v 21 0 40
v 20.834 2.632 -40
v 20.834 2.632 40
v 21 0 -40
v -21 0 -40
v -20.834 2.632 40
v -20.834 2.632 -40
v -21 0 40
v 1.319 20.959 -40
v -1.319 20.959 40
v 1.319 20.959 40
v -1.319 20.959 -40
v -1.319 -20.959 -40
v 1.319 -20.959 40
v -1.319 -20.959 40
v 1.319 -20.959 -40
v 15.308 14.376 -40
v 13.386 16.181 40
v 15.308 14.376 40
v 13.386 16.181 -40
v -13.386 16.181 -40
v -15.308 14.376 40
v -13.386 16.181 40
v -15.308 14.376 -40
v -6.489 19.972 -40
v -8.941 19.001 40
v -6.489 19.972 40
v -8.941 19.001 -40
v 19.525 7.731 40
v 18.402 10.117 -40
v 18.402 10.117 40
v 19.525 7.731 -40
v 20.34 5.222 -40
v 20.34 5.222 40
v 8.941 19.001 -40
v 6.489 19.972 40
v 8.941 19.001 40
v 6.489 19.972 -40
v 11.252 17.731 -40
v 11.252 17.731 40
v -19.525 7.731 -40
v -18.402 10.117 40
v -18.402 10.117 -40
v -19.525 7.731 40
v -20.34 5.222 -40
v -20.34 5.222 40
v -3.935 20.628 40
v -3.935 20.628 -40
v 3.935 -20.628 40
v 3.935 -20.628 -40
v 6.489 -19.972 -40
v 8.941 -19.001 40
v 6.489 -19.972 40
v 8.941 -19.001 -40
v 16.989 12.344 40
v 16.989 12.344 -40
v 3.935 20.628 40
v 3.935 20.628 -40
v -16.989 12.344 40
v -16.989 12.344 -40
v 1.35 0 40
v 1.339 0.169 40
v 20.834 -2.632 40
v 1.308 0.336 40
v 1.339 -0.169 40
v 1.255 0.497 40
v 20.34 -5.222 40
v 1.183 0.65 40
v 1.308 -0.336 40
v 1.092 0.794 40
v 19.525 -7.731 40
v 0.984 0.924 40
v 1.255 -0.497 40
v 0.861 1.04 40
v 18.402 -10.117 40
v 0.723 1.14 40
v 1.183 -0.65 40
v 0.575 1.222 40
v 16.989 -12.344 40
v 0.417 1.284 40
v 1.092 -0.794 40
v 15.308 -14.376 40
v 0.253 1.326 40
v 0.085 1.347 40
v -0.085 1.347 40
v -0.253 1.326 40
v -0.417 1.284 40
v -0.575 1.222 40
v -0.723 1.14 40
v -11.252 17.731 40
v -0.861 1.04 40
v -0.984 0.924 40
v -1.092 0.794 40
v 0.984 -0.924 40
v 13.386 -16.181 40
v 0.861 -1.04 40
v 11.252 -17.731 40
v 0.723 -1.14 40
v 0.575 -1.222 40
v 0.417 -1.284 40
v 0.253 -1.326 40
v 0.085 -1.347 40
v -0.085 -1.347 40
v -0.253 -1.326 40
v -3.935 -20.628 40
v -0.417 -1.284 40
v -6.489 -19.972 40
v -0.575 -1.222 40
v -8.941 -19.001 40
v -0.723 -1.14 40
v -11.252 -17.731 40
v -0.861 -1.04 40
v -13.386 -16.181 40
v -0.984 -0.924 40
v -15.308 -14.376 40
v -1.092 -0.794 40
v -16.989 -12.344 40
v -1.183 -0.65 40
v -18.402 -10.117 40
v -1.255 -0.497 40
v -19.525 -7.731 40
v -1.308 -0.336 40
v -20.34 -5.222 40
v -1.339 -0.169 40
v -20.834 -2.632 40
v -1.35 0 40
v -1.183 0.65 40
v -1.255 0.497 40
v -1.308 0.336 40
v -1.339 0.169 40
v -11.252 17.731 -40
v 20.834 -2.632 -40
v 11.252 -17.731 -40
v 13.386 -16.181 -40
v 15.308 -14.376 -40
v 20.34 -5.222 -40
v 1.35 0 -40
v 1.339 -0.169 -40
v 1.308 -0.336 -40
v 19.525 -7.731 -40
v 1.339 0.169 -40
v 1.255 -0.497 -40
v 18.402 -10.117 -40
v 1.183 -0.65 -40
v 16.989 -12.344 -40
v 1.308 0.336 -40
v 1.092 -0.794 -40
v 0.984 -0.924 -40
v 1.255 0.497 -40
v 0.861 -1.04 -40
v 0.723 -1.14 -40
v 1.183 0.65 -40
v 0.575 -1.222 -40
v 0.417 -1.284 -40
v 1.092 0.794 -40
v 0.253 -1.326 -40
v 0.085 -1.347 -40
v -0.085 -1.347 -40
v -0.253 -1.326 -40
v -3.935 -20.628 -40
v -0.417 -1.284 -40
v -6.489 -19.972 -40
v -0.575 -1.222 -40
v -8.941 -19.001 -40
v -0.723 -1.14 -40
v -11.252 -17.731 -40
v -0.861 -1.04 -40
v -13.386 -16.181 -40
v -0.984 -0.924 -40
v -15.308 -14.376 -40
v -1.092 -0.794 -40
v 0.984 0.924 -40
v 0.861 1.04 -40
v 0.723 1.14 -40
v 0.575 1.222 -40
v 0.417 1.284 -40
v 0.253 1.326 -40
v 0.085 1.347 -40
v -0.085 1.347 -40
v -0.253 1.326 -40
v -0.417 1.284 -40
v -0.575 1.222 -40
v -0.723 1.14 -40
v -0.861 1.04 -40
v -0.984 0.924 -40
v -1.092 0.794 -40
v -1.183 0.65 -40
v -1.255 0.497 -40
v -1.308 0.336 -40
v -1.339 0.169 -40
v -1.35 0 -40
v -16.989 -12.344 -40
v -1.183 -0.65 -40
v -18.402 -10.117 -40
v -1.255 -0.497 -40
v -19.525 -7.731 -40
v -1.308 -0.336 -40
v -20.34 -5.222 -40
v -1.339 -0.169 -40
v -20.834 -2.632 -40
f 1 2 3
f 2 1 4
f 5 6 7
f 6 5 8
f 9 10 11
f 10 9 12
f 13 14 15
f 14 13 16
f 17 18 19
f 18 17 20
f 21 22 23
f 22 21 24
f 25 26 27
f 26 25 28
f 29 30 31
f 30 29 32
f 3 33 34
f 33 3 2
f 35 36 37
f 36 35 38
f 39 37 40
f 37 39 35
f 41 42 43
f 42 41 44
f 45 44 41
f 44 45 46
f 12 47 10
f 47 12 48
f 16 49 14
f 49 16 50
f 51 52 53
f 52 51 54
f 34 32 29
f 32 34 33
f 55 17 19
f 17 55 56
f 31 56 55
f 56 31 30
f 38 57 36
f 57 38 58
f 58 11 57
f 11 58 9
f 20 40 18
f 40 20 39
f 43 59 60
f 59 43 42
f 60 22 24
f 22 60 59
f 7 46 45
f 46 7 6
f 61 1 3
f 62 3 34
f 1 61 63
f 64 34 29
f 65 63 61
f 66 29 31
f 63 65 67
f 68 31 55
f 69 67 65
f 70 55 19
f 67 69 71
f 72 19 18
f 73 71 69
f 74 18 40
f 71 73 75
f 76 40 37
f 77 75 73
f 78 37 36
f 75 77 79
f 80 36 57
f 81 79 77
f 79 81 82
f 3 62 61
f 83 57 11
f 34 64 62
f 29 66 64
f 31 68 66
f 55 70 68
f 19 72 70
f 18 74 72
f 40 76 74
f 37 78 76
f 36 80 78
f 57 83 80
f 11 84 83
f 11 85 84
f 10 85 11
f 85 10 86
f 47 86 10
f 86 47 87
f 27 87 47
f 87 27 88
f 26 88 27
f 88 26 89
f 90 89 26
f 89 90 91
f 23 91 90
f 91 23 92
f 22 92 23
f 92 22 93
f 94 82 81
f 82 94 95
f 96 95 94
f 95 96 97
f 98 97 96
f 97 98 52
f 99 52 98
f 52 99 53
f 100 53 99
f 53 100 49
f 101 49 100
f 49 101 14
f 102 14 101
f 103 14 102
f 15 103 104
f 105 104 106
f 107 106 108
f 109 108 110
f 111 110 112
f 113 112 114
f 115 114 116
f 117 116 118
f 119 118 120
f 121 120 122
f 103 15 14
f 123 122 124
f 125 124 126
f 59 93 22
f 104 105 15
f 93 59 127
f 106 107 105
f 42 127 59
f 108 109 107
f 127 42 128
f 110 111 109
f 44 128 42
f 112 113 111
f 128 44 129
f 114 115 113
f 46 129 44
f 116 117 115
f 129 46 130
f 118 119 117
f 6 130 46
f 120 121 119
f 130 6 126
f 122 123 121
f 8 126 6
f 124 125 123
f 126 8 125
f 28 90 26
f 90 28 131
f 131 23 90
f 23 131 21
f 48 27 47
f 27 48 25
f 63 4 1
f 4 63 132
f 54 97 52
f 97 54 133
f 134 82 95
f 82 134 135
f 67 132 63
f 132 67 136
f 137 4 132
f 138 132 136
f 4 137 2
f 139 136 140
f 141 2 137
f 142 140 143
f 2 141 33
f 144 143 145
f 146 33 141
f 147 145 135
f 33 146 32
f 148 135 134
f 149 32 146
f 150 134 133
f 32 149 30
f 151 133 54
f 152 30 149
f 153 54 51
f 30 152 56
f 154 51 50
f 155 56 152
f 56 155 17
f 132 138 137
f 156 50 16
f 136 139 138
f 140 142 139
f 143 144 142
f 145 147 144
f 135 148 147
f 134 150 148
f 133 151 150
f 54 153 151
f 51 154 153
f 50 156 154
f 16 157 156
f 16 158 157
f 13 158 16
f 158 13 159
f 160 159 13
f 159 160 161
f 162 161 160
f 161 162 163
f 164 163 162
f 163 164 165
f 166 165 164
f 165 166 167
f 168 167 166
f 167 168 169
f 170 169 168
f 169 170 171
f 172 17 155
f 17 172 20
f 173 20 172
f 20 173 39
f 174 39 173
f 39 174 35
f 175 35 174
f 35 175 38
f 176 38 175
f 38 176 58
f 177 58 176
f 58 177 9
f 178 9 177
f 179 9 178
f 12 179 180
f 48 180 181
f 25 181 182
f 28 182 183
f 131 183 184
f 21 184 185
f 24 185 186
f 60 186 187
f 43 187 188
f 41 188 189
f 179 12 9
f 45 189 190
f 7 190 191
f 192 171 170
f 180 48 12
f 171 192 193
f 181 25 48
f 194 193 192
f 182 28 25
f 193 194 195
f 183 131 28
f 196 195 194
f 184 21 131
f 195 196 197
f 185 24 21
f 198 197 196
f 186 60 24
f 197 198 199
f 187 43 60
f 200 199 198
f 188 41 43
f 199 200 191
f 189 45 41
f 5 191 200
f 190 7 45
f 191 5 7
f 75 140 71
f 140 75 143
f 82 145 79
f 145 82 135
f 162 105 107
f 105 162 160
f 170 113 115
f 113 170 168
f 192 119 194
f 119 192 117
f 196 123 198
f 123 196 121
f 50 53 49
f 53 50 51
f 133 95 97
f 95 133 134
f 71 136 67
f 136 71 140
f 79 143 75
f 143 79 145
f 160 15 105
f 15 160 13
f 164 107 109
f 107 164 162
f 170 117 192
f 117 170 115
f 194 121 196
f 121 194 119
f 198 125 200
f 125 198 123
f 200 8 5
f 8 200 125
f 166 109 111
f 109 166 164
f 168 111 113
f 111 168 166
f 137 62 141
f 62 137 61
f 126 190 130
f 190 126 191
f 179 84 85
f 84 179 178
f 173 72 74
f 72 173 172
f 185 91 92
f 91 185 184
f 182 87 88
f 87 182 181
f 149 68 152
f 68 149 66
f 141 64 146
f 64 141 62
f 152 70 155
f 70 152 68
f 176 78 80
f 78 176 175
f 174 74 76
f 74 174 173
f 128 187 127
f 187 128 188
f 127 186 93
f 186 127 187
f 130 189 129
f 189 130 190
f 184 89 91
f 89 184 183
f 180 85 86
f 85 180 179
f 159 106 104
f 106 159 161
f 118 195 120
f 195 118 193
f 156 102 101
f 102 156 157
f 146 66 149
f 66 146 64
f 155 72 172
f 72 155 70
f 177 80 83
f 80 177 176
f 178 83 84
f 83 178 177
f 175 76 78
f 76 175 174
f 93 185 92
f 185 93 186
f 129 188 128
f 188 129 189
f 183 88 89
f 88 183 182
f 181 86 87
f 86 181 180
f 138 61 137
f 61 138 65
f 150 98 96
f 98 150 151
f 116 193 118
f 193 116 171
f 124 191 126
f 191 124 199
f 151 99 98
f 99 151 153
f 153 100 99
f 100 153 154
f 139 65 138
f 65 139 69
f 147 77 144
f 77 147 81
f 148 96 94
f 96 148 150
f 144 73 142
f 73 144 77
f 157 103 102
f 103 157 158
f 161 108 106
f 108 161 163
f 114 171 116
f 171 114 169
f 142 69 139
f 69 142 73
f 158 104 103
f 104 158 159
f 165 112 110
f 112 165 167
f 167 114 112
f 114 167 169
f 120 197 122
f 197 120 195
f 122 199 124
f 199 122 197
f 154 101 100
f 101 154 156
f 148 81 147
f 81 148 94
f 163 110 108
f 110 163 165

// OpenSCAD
$fn = 50;


difference() {
	union() {
		translate(v = [0, 0, -40.0000000000]) {
			cylinder(h = 80, r = 21.0000000000);
		}
	}
	union() {
		translate(v = [0, 0, -100.0000000000]) {
			cylinder(h = 200, r = 1.3500000000);
		}
	}
}
